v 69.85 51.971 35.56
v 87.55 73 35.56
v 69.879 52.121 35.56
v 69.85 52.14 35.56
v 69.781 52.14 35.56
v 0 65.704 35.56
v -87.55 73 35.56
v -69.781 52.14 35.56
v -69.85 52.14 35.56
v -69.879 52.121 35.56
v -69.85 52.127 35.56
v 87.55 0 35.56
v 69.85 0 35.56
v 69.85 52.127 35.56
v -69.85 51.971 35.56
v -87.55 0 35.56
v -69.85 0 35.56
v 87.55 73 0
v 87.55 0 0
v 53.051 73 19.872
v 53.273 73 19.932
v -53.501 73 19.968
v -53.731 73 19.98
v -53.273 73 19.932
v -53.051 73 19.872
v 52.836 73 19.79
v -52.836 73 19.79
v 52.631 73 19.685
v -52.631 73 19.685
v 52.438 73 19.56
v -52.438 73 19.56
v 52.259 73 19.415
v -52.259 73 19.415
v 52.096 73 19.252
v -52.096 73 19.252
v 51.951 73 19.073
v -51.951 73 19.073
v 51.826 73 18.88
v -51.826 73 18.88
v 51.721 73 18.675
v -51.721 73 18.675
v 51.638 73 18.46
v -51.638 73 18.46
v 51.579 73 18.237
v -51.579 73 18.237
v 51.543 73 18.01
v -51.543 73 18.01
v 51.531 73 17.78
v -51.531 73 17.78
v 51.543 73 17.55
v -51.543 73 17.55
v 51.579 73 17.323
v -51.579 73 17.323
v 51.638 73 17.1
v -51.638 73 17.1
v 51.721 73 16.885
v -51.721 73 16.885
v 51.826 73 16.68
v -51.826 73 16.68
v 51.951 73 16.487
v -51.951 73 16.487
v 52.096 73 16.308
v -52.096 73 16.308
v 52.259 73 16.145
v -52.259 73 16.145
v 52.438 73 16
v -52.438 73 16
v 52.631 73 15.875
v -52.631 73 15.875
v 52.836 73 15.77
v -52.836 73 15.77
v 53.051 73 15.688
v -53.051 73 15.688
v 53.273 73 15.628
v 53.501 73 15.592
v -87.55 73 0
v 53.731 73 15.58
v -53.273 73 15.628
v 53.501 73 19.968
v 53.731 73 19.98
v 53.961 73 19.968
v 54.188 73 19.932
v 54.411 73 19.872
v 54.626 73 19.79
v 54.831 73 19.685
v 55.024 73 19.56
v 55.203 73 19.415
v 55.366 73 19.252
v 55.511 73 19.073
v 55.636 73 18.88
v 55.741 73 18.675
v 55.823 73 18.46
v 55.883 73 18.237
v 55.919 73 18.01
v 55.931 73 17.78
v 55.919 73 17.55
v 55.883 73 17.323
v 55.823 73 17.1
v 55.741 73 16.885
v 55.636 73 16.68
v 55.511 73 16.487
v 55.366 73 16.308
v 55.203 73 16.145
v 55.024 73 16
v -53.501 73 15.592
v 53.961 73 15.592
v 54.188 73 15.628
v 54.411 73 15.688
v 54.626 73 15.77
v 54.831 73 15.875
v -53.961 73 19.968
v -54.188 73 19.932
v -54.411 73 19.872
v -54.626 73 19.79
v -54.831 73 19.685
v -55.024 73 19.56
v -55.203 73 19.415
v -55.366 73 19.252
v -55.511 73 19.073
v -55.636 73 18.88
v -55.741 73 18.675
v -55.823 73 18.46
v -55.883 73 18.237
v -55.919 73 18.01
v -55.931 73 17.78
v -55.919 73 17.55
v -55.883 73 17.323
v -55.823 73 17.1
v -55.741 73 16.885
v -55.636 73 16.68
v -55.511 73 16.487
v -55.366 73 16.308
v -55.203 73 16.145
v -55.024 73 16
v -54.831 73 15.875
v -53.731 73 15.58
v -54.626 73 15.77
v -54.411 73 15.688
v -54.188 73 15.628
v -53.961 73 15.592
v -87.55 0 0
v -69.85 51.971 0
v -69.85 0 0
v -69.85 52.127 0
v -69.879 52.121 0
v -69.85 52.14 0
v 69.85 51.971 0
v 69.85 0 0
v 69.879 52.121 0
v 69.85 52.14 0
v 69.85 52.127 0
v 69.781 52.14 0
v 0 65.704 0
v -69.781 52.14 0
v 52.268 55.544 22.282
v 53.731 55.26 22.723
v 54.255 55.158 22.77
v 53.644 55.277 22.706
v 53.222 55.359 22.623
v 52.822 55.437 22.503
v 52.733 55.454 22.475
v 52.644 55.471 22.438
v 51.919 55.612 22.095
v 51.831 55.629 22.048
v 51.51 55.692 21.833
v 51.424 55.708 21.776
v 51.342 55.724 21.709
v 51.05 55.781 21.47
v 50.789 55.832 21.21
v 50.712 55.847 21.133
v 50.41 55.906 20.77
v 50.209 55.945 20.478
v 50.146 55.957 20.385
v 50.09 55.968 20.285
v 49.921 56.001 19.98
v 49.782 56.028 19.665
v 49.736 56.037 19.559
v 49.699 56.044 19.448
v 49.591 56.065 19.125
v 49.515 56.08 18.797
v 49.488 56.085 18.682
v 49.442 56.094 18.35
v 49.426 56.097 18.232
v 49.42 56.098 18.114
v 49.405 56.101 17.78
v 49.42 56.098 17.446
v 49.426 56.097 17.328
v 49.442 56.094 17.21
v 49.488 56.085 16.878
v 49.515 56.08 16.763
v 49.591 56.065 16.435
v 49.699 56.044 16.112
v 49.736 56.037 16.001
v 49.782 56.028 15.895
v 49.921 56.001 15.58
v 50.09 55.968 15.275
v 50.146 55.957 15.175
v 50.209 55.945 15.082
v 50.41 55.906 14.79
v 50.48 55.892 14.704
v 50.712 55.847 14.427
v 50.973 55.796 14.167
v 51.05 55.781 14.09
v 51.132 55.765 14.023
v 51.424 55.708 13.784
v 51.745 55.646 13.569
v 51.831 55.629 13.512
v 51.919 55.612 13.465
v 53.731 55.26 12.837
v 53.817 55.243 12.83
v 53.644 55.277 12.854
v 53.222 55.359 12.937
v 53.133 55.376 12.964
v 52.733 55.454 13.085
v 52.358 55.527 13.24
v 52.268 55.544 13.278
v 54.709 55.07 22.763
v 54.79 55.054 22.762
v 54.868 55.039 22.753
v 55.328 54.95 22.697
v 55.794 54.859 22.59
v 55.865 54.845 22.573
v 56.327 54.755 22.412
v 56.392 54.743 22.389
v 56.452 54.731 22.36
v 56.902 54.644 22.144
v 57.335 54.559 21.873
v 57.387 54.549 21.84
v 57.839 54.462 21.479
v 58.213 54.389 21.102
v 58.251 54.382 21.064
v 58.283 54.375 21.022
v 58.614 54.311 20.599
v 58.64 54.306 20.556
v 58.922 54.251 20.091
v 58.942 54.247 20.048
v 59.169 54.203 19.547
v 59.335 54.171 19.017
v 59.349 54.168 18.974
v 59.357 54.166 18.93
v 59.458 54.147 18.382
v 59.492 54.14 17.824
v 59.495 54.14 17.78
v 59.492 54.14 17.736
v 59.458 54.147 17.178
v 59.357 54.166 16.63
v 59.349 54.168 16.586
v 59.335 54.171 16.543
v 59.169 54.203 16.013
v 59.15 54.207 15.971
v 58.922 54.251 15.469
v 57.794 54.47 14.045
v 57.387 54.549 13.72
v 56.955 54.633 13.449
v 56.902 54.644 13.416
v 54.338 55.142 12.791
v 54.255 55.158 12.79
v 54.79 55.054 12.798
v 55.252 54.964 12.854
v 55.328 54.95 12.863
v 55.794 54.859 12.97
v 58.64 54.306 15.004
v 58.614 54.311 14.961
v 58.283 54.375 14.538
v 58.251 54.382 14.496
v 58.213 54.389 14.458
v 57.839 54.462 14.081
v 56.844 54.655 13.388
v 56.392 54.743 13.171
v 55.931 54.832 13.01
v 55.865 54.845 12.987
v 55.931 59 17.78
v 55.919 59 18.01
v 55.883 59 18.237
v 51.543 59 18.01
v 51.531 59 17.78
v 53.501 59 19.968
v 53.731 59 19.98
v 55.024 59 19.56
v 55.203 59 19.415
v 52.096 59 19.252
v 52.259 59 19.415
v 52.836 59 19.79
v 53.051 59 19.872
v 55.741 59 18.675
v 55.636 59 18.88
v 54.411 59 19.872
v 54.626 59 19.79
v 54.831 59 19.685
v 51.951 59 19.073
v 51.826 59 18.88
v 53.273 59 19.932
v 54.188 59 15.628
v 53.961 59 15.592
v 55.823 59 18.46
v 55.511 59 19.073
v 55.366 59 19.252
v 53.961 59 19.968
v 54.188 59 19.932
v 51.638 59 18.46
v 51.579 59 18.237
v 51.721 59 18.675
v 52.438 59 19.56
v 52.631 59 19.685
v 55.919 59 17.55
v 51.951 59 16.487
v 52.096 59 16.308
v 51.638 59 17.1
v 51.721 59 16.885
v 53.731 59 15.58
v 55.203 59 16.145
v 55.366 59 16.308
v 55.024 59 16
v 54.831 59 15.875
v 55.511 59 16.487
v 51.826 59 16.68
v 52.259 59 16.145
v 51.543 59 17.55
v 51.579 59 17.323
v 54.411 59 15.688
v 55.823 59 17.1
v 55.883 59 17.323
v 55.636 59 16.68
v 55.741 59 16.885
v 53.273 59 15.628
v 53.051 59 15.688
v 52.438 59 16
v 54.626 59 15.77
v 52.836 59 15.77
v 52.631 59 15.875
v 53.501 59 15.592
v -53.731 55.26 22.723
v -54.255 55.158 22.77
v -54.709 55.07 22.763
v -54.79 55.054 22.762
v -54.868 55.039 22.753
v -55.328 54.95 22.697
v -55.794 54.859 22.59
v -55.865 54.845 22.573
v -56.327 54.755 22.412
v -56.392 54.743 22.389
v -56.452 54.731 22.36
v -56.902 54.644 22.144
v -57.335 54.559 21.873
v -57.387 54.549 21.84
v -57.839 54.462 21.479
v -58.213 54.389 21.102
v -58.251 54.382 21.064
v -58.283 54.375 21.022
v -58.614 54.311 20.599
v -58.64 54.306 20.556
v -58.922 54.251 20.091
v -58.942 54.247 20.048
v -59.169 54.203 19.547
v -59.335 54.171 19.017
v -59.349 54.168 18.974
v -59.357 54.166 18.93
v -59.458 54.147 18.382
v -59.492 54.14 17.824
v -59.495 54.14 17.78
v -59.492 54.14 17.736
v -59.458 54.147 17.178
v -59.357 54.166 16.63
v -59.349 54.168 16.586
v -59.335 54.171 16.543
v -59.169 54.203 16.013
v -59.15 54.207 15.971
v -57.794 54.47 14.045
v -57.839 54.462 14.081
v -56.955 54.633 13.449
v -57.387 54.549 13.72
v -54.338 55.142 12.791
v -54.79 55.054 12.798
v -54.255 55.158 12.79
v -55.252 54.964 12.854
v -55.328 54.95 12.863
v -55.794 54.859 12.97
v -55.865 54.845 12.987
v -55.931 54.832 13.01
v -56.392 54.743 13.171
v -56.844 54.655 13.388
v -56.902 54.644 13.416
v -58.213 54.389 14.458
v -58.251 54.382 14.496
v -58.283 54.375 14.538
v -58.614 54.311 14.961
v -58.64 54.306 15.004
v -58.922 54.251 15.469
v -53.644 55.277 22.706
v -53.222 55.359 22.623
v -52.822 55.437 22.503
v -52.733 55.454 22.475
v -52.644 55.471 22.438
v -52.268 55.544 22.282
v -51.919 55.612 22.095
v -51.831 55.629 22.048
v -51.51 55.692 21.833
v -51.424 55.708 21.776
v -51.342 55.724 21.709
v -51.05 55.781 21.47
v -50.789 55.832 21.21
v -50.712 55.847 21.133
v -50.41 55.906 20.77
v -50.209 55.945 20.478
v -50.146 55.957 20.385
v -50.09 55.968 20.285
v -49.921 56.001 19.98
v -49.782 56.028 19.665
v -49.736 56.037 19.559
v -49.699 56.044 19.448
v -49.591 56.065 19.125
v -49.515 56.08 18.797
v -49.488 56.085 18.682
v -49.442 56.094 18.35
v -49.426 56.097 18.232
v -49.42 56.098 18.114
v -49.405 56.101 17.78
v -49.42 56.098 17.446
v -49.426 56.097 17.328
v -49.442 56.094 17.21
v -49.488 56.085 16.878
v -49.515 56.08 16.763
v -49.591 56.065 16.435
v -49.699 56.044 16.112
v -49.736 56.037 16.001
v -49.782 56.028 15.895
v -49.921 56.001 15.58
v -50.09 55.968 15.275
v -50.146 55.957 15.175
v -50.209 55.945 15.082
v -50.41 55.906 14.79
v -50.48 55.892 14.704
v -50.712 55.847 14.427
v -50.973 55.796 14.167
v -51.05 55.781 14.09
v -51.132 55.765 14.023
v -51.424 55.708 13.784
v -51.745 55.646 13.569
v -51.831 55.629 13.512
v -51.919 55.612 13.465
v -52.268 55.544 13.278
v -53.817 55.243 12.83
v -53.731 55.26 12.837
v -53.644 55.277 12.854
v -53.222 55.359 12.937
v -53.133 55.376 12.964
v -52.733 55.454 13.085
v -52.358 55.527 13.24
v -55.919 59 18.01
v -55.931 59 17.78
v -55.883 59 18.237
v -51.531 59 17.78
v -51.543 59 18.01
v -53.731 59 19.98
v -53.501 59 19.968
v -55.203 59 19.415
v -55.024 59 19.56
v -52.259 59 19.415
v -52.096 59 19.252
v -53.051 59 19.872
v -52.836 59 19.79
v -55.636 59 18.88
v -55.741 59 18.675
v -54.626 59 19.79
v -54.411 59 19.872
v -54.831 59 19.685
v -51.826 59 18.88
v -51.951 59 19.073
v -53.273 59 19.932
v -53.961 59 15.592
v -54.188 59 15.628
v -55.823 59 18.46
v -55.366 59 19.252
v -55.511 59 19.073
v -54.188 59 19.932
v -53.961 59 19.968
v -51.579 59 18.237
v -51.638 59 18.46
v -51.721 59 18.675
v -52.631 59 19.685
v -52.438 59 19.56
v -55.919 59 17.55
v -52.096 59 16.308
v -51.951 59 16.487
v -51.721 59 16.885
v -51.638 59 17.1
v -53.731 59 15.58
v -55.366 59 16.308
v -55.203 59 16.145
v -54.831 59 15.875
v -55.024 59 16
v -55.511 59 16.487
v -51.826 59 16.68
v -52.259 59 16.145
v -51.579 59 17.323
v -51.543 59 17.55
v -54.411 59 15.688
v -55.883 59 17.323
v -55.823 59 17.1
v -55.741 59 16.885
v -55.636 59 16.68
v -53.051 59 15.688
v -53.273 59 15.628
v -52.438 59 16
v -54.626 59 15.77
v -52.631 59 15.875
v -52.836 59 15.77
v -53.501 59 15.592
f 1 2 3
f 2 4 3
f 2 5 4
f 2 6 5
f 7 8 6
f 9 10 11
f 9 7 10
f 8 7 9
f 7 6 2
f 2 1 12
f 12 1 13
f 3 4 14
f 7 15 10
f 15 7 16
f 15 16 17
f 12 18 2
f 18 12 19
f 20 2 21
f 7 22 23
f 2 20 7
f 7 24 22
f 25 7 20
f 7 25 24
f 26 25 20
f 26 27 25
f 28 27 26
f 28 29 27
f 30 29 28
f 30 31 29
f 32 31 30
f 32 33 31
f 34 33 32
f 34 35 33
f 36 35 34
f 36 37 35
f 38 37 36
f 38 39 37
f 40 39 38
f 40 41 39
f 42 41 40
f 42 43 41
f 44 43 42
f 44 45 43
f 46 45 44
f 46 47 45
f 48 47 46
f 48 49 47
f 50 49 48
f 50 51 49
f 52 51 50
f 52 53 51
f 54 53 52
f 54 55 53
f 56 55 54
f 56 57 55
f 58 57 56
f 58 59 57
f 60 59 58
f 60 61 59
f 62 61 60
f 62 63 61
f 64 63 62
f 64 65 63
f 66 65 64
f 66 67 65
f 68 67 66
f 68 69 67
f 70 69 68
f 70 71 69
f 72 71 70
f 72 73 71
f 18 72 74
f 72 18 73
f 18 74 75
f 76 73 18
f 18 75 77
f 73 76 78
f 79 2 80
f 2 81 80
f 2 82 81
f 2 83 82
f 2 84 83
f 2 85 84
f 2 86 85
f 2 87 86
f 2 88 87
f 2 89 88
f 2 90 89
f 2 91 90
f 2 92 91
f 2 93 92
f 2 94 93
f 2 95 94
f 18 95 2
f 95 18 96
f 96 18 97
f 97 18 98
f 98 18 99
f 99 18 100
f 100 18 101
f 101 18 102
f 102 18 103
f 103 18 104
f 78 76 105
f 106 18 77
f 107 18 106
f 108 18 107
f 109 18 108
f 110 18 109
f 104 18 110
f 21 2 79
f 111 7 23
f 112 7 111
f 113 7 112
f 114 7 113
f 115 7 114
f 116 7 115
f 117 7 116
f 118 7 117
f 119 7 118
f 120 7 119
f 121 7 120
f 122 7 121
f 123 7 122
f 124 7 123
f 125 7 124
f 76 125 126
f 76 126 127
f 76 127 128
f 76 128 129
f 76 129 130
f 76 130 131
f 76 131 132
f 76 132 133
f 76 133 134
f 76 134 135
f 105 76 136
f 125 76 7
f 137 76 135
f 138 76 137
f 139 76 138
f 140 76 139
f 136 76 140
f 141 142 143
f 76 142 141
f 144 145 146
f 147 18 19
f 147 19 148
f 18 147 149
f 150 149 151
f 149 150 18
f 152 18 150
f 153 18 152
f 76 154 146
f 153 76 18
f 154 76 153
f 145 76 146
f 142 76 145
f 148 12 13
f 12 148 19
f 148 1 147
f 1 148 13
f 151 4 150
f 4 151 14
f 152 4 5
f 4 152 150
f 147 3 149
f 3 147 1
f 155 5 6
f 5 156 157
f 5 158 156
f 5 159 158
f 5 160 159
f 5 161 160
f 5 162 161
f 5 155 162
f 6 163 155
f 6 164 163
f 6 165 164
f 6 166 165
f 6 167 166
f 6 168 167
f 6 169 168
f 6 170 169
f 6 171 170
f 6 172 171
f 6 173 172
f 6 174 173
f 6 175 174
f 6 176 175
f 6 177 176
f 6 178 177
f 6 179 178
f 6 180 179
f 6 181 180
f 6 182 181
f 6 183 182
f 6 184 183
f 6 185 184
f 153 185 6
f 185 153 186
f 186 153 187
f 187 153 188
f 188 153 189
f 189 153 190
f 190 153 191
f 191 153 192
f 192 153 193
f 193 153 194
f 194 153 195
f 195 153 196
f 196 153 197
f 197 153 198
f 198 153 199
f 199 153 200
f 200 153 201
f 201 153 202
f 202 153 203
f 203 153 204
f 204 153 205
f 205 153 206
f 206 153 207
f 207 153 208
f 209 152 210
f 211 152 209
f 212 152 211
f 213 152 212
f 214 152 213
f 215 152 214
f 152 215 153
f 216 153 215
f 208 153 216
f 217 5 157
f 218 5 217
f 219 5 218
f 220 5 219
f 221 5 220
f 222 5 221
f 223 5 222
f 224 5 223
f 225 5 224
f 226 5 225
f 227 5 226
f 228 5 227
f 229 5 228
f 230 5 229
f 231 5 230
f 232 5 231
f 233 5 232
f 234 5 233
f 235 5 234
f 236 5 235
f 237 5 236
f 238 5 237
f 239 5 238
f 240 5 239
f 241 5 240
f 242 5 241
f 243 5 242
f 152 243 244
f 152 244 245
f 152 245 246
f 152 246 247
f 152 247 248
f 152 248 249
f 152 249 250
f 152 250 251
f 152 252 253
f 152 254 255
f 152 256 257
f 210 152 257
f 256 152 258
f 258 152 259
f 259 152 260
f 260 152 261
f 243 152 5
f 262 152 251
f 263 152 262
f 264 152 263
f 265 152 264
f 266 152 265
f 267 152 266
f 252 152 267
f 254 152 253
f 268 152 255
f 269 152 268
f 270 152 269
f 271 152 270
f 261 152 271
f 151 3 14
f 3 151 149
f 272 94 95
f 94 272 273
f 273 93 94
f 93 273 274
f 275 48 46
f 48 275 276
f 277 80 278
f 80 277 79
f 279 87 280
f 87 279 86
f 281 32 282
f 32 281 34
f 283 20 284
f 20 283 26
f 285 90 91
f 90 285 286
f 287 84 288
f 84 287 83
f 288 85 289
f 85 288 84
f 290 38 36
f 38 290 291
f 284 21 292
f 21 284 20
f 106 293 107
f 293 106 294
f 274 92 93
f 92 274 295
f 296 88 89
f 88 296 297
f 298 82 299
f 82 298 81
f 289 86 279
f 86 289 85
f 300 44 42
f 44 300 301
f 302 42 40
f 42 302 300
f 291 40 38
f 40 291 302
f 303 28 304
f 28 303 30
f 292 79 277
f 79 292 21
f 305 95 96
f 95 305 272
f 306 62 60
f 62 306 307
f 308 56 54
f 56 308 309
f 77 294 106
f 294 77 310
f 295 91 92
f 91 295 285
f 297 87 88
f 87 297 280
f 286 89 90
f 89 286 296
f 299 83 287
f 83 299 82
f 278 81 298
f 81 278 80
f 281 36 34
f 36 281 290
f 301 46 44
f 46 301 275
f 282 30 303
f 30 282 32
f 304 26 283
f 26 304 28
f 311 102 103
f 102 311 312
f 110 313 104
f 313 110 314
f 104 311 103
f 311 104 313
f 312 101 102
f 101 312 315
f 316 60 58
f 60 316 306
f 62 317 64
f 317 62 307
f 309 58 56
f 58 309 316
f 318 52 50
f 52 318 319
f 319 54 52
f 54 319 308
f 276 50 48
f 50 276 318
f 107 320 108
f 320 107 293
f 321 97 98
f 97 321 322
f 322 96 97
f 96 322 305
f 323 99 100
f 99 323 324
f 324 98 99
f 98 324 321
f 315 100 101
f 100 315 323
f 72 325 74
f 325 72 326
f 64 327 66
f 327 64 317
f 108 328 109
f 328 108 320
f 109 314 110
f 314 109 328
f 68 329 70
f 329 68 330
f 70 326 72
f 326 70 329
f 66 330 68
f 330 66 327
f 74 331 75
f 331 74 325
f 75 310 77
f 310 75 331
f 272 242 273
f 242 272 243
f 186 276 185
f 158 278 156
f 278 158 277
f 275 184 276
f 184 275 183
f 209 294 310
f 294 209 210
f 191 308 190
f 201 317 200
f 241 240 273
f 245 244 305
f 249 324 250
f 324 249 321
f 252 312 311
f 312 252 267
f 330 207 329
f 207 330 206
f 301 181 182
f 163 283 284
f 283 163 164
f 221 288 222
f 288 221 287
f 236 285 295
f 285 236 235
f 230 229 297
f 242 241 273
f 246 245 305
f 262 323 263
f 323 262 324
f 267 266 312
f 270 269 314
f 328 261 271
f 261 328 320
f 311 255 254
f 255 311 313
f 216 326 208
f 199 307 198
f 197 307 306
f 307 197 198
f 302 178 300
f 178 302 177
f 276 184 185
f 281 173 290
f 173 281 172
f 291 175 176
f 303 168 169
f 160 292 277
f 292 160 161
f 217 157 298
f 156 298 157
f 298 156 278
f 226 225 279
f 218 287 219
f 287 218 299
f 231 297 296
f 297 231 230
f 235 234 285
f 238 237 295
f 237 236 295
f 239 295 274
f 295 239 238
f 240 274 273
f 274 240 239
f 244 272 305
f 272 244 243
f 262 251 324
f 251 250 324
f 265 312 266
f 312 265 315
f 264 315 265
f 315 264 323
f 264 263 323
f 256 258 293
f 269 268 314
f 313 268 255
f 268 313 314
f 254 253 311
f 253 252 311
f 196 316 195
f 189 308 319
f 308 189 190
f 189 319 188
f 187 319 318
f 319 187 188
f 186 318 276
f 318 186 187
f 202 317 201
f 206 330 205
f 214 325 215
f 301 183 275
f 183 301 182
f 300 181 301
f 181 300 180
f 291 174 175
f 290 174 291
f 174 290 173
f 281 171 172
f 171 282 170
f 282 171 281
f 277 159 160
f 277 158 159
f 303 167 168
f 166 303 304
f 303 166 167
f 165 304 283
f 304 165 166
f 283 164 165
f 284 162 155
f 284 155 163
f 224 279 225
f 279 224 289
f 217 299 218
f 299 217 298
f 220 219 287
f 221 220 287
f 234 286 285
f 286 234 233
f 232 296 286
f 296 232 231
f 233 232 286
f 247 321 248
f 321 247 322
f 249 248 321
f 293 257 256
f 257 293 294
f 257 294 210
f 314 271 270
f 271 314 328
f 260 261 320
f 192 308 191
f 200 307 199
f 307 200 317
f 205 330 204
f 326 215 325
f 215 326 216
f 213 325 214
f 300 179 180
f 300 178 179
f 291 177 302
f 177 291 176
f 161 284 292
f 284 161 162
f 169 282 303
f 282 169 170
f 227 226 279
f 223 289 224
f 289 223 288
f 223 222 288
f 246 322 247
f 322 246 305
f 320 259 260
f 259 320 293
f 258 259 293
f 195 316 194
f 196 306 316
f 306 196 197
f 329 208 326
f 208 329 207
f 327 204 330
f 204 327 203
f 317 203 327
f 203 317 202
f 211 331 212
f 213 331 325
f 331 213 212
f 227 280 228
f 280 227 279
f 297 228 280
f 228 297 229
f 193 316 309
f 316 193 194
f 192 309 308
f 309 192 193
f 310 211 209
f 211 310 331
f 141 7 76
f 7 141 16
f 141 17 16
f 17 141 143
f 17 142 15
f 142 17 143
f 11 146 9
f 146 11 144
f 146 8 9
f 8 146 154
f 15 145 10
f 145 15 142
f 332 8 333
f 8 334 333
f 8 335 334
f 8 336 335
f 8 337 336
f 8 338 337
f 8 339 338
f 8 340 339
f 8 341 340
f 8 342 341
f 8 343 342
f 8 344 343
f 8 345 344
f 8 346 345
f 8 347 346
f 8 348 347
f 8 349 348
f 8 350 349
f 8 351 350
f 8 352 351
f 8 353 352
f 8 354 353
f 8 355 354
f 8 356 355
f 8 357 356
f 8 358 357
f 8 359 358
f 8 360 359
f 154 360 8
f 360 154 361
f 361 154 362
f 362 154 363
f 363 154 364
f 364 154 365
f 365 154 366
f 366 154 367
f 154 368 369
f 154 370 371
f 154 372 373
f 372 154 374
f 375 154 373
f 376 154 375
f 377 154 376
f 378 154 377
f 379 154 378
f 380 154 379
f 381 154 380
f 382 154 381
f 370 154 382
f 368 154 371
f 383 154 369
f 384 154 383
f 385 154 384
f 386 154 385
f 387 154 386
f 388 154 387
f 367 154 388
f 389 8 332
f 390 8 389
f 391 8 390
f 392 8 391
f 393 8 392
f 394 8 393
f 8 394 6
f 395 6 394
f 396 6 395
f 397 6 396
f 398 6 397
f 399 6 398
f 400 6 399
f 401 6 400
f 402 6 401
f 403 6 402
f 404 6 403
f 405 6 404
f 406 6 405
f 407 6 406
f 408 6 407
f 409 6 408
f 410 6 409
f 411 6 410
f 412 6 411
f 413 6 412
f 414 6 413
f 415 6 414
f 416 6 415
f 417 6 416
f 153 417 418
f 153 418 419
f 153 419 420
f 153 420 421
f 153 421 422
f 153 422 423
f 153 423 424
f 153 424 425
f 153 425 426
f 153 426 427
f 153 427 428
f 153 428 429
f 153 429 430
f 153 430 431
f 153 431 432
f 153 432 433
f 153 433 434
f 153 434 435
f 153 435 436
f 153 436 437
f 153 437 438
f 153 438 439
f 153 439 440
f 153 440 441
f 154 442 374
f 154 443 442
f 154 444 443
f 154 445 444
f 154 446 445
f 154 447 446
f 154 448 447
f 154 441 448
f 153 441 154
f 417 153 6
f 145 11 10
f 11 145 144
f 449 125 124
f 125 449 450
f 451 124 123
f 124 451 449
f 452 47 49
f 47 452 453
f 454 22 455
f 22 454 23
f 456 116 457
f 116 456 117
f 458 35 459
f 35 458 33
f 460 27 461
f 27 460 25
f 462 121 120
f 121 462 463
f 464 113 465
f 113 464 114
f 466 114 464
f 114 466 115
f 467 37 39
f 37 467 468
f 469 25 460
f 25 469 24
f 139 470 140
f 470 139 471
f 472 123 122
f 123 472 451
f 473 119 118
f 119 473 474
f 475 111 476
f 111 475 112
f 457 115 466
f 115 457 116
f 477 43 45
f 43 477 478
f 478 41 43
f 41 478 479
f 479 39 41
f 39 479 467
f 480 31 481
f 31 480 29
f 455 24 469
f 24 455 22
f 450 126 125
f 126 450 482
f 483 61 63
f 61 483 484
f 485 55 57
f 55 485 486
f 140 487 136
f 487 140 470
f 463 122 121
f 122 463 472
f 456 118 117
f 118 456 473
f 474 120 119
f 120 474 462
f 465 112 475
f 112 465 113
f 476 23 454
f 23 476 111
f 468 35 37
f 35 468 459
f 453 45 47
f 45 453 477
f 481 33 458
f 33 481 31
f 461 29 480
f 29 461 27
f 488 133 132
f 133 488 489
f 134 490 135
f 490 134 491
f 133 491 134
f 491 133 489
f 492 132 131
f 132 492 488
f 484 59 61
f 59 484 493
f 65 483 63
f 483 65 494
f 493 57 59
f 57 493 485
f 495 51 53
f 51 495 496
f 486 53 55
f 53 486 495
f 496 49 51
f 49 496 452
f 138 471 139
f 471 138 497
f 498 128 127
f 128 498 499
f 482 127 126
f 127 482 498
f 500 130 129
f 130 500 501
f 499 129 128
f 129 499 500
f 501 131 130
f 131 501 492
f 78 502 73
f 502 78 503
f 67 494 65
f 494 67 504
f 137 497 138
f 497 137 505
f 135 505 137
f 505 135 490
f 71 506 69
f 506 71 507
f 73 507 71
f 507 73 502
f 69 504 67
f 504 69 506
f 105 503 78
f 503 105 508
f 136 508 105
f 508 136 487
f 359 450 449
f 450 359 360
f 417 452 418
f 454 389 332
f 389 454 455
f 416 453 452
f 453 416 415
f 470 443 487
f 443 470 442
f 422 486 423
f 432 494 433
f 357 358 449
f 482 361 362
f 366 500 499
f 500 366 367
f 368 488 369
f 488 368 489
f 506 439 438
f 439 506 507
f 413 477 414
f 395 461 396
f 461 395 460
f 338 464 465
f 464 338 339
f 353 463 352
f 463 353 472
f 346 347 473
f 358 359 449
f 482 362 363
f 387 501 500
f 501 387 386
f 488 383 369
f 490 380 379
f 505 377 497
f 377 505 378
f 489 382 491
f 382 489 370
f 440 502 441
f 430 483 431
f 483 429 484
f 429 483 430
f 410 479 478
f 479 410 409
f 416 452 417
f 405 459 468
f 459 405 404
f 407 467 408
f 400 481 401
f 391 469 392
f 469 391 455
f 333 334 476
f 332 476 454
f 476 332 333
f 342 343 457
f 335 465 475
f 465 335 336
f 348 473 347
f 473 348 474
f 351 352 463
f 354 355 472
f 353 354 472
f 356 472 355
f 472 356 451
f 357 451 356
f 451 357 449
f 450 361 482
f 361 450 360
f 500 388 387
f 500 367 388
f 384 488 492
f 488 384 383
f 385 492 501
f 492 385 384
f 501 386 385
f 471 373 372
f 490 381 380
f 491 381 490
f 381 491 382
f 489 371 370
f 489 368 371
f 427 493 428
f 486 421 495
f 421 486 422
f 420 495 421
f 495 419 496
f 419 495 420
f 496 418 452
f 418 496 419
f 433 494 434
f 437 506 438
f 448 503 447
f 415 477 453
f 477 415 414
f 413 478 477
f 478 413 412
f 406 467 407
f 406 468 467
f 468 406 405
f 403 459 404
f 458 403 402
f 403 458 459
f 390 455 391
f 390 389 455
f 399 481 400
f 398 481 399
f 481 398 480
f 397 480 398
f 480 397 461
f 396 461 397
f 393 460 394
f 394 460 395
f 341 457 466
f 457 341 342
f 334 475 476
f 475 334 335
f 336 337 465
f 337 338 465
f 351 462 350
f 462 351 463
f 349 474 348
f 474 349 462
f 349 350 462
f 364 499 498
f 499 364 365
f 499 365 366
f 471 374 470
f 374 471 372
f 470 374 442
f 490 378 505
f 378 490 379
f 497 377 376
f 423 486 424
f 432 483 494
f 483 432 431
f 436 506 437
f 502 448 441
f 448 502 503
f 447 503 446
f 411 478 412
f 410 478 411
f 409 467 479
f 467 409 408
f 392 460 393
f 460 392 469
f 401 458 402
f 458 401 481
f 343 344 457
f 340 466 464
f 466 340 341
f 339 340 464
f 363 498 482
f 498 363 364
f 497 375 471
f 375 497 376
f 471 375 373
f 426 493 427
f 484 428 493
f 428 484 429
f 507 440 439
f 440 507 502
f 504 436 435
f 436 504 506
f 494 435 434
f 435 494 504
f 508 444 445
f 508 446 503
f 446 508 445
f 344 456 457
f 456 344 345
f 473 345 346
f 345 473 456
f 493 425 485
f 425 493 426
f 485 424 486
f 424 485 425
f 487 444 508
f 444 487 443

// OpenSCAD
i = 25.4;

hole_rad = 4.4;
z = 1.4*i;
sy = 1*i;

x = ((5+16/32)/2) * i;
xt = (2+27/32) * i;
sx = (1/2) * i + 5;
y = 73;
yt = 18/32*i;

// Set the angular resolution ($fn segments per 360 deg)
$fn = 60;

module strut_half(){
  difference(){
    cube([x+sx, y, z]);
    
    #translate([0,-.1,-.1]) 
      cube([x,y-yt*1.46+.1,z+.2]);

    #translate([-xt/2*0.41,-yt*.35,-.2]) rotate([0,0,-11]) 
      cube([xt,xt,z+.4]);

    translate([x/1.3, y+5, z/2]) rotate([90,0,0]) cylinder(r=hole_rad/2, h=z*1.5);
    translate([x/1.3, y-14, z/2]) rotate([90,0,0]) cylinder(r2=hole_rad/2*3, r1=hole_rad/2, h=6);

  }
}

rotate([0,0,0]) {
    strut_half();
    mirror([1, 0, 0]) translate([0,0,0]) strut_half();
}
